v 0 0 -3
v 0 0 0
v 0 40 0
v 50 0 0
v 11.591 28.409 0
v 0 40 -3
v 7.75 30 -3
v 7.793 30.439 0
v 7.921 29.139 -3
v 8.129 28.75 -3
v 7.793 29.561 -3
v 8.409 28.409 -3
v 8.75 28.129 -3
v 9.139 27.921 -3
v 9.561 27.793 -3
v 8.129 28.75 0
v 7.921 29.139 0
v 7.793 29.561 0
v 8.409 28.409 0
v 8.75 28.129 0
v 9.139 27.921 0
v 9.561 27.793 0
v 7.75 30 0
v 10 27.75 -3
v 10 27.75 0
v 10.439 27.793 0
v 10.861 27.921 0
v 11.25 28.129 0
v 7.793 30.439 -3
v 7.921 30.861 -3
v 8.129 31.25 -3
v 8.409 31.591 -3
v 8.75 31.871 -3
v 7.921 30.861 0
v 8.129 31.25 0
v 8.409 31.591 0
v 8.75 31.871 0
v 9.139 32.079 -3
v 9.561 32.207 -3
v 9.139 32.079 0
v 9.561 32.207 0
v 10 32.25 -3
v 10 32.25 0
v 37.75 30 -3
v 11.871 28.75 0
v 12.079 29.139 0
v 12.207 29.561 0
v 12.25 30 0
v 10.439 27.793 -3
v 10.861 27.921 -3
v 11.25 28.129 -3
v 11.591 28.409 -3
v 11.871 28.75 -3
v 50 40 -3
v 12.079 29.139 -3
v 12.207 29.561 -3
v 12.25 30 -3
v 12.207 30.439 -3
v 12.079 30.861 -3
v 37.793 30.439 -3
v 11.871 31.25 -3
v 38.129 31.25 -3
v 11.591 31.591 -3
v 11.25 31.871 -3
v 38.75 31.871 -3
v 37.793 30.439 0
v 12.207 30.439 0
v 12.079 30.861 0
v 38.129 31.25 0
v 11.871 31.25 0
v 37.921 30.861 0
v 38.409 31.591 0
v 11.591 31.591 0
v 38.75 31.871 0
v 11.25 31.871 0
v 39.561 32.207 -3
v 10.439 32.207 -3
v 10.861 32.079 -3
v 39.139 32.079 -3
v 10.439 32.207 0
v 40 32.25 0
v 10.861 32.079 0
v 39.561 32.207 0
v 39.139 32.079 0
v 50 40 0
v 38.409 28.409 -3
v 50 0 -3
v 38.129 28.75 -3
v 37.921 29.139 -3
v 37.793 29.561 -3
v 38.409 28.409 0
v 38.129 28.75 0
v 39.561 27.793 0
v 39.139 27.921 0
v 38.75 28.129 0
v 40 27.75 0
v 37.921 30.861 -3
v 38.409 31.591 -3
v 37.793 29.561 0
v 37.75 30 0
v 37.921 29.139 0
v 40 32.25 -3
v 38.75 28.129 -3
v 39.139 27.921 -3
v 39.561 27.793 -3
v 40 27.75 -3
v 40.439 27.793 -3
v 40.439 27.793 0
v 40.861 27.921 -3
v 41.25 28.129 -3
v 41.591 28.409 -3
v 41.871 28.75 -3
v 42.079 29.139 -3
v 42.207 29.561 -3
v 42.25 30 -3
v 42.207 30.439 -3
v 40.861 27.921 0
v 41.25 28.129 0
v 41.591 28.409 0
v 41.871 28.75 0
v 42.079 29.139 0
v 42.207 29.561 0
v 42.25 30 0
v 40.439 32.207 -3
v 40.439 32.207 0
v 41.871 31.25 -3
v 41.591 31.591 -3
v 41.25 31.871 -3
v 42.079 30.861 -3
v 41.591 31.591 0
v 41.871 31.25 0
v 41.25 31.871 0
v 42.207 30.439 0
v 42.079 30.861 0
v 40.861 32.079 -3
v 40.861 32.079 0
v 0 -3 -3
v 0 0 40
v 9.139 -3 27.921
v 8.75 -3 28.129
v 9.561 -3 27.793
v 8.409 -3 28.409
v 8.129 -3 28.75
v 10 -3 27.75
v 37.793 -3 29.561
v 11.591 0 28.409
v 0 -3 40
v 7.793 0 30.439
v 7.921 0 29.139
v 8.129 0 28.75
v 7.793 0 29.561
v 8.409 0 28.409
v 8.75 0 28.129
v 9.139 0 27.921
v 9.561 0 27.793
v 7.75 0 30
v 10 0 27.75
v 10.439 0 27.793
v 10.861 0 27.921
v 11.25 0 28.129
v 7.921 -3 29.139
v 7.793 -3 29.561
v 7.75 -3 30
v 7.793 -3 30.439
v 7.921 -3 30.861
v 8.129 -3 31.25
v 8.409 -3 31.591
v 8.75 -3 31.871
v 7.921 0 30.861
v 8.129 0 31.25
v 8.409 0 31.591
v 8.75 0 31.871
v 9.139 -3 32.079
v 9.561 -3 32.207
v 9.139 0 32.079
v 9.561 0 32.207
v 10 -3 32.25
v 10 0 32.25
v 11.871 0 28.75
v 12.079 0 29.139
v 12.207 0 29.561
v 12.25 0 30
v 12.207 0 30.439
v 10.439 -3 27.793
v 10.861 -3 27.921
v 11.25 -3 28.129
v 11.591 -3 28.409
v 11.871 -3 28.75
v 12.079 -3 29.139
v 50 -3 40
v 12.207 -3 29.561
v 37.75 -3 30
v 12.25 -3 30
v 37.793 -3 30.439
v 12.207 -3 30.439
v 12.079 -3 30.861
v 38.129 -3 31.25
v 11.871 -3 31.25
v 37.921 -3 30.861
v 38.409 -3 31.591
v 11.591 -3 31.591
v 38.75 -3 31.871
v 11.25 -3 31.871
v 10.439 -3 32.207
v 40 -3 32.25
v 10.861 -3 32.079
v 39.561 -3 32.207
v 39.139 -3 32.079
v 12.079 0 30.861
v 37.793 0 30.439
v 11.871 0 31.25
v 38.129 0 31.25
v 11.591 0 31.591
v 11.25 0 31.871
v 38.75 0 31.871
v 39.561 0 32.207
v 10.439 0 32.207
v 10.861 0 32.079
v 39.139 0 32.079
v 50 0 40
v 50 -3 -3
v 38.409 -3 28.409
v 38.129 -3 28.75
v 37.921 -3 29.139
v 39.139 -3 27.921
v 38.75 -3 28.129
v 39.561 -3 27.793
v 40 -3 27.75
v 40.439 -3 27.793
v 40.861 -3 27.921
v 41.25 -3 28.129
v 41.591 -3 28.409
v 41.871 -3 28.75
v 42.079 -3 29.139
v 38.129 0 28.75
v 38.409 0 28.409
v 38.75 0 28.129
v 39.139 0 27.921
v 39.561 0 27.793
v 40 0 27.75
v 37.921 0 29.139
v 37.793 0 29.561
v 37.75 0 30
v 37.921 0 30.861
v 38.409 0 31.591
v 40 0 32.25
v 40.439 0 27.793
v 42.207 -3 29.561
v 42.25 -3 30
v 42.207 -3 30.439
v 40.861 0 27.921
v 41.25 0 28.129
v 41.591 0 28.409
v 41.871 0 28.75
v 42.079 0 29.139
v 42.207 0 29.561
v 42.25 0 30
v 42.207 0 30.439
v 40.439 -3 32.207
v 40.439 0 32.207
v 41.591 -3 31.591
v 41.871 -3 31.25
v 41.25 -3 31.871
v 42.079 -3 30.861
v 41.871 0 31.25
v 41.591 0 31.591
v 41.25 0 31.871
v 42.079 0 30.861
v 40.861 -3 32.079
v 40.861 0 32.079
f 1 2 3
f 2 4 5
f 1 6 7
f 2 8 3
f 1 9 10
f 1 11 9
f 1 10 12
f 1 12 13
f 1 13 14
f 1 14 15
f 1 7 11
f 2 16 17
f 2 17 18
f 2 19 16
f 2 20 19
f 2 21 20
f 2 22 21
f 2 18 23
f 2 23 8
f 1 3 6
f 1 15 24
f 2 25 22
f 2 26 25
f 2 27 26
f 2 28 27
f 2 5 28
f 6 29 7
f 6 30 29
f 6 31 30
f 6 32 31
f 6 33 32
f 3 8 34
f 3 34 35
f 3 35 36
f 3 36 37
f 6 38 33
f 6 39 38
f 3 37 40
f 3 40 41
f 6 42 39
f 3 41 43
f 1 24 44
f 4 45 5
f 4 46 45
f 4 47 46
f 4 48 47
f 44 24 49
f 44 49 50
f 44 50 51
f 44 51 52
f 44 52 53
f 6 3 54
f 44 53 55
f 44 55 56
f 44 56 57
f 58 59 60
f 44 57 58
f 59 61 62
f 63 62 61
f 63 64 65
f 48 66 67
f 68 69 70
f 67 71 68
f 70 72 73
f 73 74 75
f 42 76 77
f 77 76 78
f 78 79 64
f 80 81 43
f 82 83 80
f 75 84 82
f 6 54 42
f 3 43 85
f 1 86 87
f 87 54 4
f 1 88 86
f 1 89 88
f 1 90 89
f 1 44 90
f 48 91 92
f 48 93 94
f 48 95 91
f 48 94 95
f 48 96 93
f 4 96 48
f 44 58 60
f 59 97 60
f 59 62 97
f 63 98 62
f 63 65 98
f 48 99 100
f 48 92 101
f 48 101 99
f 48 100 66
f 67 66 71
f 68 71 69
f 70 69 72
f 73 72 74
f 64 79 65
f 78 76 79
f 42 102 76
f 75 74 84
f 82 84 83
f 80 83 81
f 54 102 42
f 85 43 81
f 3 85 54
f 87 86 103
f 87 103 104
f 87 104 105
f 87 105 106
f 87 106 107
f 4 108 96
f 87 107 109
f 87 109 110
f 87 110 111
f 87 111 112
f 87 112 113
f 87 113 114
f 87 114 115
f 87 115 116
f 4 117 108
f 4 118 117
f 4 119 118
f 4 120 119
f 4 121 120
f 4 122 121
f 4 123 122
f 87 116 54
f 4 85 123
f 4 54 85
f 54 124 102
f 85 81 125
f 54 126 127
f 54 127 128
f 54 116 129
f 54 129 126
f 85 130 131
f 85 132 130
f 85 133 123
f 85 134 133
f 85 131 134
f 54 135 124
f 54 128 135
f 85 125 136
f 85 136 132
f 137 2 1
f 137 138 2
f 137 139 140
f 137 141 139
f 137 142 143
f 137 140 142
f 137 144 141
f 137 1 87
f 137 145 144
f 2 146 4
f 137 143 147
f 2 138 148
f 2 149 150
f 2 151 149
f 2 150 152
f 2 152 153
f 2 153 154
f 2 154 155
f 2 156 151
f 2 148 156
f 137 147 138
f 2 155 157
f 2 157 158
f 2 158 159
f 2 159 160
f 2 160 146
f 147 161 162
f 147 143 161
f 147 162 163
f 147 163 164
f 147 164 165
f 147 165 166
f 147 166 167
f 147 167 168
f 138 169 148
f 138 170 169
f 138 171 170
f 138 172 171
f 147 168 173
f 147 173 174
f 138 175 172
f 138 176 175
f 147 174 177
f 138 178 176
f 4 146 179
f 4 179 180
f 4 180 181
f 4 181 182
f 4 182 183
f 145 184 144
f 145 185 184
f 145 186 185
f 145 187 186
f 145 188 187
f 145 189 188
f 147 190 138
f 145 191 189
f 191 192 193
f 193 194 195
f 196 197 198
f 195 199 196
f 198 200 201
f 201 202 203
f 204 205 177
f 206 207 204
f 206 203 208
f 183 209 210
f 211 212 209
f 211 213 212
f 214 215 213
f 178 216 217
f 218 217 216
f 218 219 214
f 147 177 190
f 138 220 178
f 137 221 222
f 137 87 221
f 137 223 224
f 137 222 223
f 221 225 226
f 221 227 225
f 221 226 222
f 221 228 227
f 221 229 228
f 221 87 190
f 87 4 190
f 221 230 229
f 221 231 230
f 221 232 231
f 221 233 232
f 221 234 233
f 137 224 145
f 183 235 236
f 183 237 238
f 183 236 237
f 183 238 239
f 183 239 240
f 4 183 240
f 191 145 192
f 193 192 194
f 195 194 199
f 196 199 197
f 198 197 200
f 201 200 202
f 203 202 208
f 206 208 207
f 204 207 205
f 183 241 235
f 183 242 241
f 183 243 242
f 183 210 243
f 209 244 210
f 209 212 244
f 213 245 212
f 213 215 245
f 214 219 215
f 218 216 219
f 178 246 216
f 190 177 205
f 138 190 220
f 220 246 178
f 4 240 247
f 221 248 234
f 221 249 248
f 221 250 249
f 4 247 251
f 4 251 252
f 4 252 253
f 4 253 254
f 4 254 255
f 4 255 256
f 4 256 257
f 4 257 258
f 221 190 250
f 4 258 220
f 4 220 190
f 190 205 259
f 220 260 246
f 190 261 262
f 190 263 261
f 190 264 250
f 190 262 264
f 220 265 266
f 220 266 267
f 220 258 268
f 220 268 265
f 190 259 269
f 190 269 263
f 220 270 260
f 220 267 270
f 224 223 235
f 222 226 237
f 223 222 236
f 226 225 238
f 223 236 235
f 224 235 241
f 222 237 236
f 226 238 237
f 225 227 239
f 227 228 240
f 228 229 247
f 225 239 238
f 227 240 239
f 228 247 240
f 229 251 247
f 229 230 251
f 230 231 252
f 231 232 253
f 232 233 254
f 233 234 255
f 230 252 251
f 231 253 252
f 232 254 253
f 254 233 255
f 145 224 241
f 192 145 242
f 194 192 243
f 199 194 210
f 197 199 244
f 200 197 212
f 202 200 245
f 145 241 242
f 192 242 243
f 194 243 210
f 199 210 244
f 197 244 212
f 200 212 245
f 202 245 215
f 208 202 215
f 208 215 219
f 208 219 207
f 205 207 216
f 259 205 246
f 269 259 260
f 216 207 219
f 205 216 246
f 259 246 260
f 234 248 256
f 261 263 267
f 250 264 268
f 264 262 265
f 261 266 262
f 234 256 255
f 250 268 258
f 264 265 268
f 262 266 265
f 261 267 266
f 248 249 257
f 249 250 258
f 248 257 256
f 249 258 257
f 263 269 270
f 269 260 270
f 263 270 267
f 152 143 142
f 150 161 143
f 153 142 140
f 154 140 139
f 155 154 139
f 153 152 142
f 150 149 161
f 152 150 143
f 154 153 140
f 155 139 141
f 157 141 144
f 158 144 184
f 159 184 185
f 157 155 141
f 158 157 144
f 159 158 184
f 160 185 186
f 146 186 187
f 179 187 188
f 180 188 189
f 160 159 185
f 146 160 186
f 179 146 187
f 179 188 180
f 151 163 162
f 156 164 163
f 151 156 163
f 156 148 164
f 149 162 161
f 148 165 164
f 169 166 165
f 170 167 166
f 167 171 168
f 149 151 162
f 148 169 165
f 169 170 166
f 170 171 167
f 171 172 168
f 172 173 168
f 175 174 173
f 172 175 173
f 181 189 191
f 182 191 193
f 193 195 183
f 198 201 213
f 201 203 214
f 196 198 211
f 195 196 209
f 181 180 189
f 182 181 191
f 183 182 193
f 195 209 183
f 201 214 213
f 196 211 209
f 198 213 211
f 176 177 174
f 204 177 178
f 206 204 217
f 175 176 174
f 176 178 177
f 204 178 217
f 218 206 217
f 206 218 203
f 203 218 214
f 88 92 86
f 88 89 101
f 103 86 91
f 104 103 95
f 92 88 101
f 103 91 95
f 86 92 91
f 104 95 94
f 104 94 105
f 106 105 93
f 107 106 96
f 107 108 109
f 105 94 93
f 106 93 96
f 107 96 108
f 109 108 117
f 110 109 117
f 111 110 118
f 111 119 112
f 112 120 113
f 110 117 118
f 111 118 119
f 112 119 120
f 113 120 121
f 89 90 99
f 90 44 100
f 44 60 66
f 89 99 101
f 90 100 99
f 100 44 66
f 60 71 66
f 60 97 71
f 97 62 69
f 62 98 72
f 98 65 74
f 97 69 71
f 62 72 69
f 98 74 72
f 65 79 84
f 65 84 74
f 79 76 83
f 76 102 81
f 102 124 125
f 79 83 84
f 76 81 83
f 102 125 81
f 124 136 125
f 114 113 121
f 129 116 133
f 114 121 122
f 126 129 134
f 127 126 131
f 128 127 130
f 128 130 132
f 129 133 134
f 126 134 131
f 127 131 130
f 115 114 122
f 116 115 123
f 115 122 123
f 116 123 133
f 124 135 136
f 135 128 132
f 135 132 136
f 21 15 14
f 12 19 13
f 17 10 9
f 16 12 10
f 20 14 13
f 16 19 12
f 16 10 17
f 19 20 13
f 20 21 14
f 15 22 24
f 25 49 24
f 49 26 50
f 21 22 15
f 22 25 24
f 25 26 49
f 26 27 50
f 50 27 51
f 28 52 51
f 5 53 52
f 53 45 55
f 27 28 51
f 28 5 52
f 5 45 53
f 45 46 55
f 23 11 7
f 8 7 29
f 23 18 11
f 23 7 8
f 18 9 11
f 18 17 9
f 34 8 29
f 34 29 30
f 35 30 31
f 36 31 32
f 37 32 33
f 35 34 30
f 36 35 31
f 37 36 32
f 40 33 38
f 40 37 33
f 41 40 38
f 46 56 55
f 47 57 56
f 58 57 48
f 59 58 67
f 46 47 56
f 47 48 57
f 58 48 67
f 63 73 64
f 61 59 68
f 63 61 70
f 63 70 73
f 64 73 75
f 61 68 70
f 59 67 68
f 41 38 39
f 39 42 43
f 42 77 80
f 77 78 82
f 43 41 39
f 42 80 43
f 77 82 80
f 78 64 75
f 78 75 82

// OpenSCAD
// L-bracket parameters
width = 50;
depth = 40;
height = 40;
thickness = 3;

// Screw hole parameters (M4)
hole_dia = 4.5;
sink_dia = 8.0;
sink_depth = 2.0;
hole_offset = 10; // offset from edge

module countersunk_hole() {
    union() {
        // Through hole
        cylinder(h = thickness * 3, d = hole_dia, center = true, $fn = 32);
        // Countersink (placed at the outer surface)
        translate([0, 0, thickness/2])
            cylinder(h = sink_depth, d1 = hole_dia, d2 = sink_dia, center = false, $fn = 32);
    }
}

difference() {
    // Main Body
    union() {
        // Horizontal flange (Y-axis direction)
        translate([0, 0, -thickness])
            cube([width, depth, thickness]);
        // Vertical flange (Z-axis direction)
        translate([0, -thickness, -thickness])
            cube([width, thickness, height + thickness]);
    }

    // Holes for Horizontal flange (Outer side is bottom Z-)
    translate([width/2 - (width/2 - hole_offset), depth - hole_offset, -thickness/2])
        rotate([180, 0, 0]) countersunk_hole();
    translate([width/2 + (width/2 - hole_offset), depth - hole_offset, -thickness/2])
        rotate([180, 0, 0]) countersunk_hole();

    // Holes for Vertical flange (Outer side is front Y-)
    translate([width/2 - (width/2 - hole_offset), -thickness/2, height - hole_offset])
        rotate([-90, 0, 0]) countersunk_hole();
    translate([width/2 + (width/2 - hole_offset), -thickness/2, height - hole_offset])
        rotate([-90, 0, 0]) countersunk_hole();
}
